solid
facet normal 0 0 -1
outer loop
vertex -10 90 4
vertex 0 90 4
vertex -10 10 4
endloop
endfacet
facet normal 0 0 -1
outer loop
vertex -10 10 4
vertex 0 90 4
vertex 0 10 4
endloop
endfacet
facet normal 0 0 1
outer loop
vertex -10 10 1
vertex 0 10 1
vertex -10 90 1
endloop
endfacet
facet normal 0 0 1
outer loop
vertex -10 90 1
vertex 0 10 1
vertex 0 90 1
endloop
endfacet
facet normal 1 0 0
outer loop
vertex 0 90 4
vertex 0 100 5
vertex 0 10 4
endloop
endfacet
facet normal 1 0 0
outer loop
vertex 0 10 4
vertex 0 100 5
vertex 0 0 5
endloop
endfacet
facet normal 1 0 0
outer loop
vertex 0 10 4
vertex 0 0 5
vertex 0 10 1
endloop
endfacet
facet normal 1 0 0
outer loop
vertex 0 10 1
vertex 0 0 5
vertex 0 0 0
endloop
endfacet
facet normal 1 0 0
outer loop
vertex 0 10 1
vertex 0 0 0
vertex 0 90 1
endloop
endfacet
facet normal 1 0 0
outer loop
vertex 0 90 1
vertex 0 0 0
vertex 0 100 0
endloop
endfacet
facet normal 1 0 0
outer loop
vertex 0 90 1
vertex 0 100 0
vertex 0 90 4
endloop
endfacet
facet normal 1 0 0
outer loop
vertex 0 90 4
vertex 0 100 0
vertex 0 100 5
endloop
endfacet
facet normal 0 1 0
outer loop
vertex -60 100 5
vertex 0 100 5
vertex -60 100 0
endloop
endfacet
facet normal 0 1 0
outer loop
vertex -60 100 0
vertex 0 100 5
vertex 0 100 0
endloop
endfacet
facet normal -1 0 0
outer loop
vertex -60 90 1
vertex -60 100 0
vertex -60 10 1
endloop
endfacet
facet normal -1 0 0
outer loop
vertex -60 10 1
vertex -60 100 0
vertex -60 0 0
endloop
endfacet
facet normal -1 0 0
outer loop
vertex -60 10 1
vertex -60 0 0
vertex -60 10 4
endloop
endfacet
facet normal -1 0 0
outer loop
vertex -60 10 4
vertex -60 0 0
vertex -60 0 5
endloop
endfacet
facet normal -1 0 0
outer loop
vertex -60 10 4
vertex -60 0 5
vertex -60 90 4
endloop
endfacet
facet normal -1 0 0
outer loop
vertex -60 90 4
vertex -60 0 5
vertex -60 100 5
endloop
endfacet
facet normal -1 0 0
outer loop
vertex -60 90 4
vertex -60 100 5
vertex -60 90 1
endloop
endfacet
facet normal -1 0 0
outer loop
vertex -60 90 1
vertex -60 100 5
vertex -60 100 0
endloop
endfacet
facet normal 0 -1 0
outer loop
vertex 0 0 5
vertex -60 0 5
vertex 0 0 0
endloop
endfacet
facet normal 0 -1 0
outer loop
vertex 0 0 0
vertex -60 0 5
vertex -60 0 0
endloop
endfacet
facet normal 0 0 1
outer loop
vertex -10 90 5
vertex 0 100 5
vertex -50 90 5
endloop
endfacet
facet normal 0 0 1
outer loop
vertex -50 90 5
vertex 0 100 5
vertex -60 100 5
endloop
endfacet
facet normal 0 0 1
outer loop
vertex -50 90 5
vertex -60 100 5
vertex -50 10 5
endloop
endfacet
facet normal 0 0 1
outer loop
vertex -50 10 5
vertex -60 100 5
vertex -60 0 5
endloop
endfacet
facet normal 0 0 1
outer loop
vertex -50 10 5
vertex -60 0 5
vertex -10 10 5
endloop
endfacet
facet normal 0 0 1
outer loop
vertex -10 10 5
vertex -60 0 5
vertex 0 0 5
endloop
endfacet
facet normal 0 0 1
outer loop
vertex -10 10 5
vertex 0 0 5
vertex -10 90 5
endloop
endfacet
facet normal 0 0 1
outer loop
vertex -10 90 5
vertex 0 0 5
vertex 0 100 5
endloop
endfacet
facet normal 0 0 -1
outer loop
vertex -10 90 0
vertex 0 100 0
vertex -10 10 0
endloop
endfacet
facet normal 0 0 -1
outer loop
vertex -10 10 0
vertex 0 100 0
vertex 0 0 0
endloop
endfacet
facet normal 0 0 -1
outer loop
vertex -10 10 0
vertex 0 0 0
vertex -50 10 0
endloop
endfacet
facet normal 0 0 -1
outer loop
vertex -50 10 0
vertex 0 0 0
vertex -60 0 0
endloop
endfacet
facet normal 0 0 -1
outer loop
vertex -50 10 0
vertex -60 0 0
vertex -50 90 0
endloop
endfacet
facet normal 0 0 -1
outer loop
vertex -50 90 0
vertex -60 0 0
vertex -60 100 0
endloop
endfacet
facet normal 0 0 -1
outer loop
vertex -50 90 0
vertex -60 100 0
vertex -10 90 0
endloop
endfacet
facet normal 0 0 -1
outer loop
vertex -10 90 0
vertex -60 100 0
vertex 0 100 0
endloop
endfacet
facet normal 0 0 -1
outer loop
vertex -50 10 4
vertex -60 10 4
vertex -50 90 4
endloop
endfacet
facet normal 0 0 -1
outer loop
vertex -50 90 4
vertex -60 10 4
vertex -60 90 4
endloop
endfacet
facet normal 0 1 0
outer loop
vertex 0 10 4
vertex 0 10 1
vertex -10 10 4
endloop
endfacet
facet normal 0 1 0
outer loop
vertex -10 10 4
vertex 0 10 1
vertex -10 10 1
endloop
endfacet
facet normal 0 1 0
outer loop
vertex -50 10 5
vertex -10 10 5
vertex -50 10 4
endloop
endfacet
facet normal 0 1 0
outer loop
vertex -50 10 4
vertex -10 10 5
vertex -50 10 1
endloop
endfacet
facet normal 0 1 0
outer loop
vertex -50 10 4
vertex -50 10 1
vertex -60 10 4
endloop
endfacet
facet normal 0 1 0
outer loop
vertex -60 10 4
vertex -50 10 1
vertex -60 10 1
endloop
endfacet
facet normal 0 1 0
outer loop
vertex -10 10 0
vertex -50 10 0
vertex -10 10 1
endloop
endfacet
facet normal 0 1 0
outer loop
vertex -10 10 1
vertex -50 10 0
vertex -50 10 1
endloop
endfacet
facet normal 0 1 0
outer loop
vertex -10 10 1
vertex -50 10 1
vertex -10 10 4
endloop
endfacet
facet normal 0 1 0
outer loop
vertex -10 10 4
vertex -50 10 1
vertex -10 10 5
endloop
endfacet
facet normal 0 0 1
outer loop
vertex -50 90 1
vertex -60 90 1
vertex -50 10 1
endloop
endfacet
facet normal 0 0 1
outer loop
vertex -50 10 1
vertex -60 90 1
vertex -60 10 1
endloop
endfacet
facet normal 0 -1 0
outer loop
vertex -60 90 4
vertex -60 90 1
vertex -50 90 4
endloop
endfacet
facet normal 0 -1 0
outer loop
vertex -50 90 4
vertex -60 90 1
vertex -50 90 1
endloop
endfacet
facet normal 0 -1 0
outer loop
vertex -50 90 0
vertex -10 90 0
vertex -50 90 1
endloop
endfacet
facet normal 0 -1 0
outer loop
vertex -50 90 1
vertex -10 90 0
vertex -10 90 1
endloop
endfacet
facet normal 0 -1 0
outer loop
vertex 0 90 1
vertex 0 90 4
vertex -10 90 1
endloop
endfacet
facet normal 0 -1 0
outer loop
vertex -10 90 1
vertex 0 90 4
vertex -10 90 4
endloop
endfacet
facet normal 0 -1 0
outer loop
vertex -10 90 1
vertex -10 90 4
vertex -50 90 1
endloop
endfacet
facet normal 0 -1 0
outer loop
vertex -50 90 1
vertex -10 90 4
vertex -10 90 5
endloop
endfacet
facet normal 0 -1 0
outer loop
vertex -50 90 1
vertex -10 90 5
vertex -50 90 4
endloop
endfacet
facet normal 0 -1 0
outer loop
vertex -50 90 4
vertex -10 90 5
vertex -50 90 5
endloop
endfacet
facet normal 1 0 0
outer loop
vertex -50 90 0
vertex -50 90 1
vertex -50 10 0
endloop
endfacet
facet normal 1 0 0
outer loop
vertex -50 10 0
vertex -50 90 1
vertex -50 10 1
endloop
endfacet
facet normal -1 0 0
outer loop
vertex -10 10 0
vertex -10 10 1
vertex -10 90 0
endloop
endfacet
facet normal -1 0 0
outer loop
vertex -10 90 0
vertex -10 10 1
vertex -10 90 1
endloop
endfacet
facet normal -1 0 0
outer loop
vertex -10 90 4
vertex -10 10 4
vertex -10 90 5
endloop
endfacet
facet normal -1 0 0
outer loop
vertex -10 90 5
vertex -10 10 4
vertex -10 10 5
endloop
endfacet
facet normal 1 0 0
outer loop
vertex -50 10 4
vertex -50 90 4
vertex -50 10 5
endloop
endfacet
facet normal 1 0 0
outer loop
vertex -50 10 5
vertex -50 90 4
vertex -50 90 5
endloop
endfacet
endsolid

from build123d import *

# Parameters (mm, degrees)
CROQUIS1_W              = 60
CROQUIS1_H              = 100
SALIENTE_EXTRUIR1_DEPTH = 5
CROQUIS3_W              = 3
CROQUIS3_H              = 80
CORTAR_EXTRUIR2_DEPTH   = 60
CROQUIS4_W              = 40
CROQUIS4_H              = 80
CORTAR_EXTRUIR3_DEPTH   = 28


with BuildPart() as part:
    # Croquis1 → Saliente-Extruir1 (new body)
    with BuildSketch(Plane.XY):
        with Locations((-30, 50)):
            Rectangle(CROQUIS1_W, CROQUIS1_H)
    extrude(amount=SALIENTE_EXTRUIR1_DEPTH)

    # Croquis3 → Cortar-Extruir2 (cut)
    with BuildSketch(Plane.ZY.offset(60)):
        with Locations((2.5, 50)):
            Rectangle(CROQUIS3_W, CROQUIS3_H)
    extrude(amount=-CORTAR_EXTRUIR2_DEPTH, mode=Mode.SUBTRACT)

    # Croquis4 → Cortar-Extruir3 (cut)
    with BuildSketch(Plane(origin=(0, 0, 0), x_dir=(-1, 0, 0), z_dir=(0, 0, -1))):
        with Locations((30, 50)):
            Rectangle(CROQUIS4_W, CROQUIS4_H)
    extrude(amount=-CORTAR_EXTRUIR3_DEPTH, mode=Mode.SUBTRACT)


solid = part.part
